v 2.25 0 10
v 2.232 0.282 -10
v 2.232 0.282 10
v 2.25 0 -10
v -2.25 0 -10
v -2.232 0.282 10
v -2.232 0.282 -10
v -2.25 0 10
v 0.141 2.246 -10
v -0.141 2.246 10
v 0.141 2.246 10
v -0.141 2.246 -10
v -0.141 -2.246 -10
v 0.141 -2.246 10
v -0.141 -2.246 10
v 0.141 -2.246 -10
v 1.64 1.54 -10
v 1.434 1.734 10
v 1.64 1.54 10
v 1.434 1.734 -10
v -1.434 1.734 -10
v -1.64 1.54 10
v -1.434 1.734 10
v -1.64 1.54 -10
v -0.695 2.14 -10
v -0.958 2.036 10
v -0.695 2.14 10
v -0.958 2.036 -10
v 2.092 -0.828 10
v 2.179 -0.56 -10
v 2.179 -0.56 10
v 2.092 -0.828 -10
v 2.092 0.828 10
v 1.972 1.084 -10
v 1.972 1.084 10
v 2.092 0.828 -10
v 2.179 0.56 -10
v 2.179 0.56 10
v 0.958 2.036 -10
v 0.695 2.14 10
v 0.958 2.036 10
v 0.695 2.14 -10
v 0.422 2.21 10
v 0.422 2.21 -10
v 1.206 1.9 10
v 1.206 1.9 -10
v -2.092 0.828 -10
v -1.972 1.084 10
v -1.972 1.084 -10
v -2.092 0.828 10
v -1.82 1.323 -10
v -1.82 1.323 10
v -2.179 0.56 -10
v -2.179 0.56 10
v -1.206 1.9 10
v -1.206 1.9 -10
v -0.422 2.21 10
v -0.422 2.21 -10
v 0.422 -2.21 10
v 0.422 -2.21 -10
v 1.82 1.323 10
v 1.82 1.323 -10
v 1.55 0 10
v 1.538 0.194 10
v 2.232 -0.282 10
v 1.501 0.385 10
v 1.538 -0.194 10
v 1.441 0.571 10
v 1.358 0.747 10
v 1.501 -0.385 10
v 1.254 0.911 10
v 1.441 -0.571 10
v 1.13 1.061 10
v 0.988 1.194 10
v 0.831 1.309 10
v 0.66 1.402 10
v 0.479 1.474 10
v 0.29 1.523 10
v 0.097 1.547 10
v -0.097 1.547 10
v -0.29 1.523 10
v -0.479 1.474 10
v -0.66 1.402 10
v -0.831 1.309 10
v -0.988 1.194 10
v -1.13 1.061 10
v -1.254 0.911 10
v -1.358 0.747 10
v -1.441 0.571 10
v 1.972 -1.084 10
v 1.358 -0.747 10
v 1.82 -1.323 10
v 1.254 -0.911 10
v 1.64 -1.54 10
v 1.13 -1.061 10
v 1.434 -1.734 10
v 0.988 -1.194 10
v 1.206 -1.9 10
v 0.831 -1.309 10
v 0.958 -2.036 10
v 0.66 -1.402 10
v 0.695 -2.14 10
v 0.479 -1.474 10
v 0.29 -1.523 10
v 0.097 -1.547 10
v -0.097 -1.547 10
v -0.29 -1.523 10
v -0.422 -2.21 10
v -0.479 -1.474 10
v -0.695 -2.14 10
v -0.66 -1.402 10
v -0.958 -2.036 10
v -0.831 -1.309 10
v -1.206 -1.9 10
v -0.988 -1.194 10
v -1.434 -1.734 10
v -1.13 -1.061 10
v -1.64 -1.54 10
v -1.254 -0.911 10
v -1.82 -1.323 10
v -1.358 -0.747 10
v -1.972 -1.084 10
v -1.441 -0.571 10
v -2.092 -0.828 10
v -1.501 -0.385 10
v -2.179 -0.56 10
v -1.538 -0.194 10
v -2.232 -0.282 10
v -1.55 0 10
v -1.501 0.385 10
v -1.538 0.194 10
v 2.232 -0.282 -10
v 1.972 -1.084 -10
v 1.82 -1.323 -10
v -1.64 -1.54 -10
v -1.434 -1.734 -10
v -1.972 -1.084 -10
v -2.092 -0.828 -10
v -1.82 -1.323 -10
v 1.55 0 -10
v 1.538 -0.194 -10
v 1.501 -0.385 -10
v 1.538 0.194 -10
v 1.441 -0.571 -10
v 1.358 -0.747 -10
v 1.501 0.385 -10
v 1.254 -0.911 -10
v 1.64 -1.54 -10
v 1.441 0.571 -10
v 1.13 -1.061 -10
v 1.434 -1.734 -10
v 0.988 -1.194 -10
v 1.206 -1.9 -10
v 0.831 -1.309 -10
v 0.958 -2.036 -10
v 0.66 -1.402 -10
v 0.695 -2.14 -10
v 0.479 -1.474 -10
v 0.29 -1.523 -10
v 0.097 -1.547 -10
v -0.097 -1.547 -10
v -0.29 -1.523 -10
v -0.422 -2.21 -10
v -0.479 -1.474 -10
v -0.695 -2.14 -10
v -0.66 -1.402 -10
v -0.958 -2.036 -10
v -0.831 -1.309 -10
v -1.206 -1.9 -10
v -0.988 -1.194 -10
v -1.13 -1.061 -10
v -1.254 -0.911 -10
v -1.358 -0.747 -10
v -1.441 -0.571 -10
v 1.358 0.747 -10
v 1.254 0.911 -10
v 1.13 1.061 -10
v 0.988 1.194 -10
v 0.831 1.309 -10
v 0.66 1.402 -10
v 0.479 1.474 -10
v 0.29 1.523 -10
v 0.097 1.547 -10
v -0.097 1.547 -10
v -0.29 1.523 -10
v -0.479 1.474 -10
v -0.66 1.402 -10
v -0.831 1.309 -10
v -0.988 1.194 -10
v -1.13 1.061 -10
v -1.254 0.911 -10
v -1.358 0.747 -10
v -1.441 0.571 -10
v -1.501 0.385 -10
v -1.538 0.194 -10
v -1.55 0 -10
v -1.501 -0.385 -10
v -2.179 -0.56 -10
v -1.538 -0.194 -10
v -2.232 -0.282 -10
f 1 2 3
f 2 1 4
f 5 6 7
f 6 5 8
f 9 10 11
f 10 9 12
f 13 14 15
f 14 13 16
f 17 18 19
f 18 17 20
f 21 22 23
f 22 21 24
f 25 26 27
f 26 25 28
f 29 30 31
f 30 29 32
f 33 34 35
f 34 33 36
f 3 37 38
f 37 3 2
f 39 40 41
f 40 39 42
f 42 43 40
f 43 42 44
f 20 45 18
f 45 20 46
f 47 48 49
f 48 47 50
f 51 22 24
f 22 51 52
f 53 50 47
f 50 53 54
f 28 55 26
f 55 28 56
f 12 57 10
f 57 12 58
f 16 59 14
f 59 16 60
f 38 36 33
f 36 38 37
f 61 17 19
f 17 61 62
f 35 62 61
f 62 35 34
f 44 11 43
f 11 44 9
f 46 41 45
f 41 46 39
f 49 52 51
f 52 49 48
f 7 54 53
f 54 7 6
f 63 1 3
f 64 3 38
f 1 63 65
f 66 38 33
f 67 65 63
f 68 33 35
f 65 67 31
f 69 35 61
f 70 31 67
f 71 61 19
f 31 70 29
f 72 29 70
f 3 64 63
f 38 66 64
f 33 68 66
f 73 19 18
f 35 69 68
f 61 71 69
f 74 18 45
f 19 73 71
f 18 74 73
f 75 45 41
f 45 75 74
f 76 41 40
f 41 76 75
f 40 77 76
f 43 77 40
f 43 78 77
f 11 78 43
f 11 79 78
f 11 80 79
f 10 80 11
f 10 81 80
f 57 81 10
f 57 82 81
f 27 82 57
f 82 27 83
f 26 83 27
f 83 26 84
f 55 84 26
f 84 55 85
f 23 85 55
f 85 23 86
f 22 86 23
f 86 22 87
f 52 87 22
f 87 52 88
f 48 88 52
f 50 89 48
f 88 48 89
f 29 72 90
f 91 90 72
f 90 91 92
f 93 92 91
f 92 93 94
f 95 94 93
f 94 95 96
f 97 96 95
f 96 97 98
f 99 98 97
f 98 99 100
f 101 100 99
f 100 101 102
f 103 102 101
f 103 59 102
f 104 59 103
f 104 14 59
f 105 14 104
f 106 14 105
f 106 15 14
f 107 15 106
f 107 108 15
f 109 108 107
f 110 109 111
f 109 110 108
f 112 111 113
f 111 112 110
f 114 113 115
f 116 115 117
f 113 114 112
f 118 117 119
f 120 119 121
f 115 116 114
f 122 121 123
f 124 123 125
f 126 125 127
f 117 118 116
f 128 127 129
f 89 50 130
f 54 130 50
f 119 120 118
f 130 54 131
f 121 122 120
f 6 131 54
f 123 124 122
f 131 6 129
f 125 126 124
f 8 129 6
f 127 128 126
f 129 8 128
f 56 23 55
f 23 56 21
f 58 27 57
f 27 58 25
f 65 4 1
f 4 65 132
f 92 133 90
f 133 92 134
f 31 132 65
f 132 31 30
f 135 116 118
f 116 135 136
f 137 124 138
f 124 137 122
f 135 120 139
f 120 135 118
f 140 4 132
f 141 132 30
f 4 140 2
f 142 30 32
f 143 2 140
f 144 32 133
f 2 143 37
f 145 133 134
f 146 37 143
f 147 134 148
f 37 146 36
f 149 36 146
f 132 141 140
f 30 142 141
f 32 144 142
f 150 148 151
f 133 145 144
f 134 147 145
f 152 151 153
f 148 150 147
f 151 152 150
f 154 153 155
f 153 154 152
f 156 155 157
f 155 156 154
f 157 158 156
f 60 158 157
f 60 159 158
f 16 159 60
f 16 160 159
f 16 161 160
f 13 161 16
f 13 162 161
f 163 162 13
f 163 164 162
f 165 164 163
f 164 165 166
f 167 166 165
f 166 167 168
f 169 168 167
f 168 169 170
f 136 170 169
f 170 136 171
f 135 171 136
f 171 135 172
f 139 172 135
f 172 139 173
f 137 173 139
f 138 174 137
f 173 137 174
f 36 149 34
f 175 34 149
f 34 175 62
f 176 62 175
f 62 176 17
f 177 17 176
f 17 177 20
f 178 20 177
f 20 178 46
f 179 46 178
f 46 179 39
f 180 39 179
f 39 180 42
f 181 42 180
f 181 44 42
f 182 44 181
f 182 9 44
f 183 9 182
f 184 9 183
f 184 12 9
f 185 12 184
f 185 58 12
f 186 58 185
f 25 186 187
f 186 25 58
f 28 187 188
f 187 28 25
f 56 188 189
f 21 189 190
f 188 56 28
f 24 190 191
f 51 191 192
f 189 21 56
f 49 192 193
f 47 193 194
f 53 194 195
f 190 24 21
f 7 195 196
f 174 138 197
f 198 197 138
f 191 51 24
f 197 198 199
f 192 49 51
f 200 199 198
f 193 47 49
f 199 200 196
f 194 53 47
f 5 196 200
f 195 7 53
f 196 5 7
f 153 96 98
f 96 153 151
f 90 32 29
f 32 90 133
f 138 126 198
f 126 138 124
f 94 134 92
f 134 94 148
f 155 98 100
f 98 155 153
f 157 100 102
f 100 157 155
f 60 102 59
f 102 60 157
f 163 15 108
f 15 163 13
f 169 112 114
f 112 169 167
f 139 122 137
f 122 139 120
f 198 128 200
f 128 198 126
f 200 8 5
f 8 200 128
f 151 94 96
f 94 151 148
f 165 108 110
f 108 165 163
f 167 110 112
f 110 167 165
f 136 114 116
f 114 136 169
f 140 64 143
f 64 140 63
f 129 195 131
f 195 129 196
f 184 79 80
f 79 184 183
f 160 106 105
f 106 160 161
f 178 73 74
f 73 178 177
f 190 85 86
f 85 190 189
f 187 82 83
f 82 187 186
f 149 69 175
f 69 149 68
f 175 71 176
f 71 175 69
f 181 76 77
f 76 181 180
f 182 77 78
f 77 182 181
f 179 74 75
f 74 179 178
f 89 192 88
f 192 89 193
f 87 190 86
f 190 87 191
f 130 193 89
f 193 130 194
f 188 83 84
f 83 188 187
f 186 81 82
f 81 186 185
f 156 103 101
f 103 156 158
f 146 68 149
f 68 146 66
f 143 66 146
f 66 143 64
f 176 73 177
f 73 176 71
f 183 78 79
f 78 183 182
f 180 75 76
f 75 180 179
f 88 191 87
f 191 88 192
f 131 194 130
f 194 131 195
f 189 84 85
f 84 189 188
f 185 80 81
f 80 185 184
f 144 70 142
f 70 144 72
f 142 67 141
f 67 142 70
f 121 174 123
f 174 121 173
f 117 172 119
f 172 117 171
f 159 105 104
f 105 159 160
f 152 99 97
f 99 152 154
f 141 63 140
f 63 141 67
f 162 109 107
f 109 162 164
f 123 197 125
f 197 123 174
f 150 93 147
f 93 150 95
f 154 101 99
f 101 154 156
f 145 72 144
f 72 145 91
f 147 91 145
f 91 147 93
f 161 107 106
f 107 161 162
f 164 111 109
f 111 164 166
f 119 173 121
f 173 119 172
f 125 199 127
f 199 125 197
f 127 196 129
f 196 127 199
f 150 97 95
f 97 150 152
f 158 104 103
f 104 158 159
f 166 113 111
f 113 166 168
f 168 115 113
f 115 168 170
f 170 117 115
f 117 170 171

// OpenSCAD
$fn = 50;


difference() {
	union() {
		translate(v = [0, 0, -10.0000000000]) {
			cylinder(h = 20, r = 2.2500000000);
		}
	}
	union() {
		translate(v = [0, 0, -100.0000000000]) {
			cylinder(h = 200, r = 1.5500000000);
		}
	}
}
